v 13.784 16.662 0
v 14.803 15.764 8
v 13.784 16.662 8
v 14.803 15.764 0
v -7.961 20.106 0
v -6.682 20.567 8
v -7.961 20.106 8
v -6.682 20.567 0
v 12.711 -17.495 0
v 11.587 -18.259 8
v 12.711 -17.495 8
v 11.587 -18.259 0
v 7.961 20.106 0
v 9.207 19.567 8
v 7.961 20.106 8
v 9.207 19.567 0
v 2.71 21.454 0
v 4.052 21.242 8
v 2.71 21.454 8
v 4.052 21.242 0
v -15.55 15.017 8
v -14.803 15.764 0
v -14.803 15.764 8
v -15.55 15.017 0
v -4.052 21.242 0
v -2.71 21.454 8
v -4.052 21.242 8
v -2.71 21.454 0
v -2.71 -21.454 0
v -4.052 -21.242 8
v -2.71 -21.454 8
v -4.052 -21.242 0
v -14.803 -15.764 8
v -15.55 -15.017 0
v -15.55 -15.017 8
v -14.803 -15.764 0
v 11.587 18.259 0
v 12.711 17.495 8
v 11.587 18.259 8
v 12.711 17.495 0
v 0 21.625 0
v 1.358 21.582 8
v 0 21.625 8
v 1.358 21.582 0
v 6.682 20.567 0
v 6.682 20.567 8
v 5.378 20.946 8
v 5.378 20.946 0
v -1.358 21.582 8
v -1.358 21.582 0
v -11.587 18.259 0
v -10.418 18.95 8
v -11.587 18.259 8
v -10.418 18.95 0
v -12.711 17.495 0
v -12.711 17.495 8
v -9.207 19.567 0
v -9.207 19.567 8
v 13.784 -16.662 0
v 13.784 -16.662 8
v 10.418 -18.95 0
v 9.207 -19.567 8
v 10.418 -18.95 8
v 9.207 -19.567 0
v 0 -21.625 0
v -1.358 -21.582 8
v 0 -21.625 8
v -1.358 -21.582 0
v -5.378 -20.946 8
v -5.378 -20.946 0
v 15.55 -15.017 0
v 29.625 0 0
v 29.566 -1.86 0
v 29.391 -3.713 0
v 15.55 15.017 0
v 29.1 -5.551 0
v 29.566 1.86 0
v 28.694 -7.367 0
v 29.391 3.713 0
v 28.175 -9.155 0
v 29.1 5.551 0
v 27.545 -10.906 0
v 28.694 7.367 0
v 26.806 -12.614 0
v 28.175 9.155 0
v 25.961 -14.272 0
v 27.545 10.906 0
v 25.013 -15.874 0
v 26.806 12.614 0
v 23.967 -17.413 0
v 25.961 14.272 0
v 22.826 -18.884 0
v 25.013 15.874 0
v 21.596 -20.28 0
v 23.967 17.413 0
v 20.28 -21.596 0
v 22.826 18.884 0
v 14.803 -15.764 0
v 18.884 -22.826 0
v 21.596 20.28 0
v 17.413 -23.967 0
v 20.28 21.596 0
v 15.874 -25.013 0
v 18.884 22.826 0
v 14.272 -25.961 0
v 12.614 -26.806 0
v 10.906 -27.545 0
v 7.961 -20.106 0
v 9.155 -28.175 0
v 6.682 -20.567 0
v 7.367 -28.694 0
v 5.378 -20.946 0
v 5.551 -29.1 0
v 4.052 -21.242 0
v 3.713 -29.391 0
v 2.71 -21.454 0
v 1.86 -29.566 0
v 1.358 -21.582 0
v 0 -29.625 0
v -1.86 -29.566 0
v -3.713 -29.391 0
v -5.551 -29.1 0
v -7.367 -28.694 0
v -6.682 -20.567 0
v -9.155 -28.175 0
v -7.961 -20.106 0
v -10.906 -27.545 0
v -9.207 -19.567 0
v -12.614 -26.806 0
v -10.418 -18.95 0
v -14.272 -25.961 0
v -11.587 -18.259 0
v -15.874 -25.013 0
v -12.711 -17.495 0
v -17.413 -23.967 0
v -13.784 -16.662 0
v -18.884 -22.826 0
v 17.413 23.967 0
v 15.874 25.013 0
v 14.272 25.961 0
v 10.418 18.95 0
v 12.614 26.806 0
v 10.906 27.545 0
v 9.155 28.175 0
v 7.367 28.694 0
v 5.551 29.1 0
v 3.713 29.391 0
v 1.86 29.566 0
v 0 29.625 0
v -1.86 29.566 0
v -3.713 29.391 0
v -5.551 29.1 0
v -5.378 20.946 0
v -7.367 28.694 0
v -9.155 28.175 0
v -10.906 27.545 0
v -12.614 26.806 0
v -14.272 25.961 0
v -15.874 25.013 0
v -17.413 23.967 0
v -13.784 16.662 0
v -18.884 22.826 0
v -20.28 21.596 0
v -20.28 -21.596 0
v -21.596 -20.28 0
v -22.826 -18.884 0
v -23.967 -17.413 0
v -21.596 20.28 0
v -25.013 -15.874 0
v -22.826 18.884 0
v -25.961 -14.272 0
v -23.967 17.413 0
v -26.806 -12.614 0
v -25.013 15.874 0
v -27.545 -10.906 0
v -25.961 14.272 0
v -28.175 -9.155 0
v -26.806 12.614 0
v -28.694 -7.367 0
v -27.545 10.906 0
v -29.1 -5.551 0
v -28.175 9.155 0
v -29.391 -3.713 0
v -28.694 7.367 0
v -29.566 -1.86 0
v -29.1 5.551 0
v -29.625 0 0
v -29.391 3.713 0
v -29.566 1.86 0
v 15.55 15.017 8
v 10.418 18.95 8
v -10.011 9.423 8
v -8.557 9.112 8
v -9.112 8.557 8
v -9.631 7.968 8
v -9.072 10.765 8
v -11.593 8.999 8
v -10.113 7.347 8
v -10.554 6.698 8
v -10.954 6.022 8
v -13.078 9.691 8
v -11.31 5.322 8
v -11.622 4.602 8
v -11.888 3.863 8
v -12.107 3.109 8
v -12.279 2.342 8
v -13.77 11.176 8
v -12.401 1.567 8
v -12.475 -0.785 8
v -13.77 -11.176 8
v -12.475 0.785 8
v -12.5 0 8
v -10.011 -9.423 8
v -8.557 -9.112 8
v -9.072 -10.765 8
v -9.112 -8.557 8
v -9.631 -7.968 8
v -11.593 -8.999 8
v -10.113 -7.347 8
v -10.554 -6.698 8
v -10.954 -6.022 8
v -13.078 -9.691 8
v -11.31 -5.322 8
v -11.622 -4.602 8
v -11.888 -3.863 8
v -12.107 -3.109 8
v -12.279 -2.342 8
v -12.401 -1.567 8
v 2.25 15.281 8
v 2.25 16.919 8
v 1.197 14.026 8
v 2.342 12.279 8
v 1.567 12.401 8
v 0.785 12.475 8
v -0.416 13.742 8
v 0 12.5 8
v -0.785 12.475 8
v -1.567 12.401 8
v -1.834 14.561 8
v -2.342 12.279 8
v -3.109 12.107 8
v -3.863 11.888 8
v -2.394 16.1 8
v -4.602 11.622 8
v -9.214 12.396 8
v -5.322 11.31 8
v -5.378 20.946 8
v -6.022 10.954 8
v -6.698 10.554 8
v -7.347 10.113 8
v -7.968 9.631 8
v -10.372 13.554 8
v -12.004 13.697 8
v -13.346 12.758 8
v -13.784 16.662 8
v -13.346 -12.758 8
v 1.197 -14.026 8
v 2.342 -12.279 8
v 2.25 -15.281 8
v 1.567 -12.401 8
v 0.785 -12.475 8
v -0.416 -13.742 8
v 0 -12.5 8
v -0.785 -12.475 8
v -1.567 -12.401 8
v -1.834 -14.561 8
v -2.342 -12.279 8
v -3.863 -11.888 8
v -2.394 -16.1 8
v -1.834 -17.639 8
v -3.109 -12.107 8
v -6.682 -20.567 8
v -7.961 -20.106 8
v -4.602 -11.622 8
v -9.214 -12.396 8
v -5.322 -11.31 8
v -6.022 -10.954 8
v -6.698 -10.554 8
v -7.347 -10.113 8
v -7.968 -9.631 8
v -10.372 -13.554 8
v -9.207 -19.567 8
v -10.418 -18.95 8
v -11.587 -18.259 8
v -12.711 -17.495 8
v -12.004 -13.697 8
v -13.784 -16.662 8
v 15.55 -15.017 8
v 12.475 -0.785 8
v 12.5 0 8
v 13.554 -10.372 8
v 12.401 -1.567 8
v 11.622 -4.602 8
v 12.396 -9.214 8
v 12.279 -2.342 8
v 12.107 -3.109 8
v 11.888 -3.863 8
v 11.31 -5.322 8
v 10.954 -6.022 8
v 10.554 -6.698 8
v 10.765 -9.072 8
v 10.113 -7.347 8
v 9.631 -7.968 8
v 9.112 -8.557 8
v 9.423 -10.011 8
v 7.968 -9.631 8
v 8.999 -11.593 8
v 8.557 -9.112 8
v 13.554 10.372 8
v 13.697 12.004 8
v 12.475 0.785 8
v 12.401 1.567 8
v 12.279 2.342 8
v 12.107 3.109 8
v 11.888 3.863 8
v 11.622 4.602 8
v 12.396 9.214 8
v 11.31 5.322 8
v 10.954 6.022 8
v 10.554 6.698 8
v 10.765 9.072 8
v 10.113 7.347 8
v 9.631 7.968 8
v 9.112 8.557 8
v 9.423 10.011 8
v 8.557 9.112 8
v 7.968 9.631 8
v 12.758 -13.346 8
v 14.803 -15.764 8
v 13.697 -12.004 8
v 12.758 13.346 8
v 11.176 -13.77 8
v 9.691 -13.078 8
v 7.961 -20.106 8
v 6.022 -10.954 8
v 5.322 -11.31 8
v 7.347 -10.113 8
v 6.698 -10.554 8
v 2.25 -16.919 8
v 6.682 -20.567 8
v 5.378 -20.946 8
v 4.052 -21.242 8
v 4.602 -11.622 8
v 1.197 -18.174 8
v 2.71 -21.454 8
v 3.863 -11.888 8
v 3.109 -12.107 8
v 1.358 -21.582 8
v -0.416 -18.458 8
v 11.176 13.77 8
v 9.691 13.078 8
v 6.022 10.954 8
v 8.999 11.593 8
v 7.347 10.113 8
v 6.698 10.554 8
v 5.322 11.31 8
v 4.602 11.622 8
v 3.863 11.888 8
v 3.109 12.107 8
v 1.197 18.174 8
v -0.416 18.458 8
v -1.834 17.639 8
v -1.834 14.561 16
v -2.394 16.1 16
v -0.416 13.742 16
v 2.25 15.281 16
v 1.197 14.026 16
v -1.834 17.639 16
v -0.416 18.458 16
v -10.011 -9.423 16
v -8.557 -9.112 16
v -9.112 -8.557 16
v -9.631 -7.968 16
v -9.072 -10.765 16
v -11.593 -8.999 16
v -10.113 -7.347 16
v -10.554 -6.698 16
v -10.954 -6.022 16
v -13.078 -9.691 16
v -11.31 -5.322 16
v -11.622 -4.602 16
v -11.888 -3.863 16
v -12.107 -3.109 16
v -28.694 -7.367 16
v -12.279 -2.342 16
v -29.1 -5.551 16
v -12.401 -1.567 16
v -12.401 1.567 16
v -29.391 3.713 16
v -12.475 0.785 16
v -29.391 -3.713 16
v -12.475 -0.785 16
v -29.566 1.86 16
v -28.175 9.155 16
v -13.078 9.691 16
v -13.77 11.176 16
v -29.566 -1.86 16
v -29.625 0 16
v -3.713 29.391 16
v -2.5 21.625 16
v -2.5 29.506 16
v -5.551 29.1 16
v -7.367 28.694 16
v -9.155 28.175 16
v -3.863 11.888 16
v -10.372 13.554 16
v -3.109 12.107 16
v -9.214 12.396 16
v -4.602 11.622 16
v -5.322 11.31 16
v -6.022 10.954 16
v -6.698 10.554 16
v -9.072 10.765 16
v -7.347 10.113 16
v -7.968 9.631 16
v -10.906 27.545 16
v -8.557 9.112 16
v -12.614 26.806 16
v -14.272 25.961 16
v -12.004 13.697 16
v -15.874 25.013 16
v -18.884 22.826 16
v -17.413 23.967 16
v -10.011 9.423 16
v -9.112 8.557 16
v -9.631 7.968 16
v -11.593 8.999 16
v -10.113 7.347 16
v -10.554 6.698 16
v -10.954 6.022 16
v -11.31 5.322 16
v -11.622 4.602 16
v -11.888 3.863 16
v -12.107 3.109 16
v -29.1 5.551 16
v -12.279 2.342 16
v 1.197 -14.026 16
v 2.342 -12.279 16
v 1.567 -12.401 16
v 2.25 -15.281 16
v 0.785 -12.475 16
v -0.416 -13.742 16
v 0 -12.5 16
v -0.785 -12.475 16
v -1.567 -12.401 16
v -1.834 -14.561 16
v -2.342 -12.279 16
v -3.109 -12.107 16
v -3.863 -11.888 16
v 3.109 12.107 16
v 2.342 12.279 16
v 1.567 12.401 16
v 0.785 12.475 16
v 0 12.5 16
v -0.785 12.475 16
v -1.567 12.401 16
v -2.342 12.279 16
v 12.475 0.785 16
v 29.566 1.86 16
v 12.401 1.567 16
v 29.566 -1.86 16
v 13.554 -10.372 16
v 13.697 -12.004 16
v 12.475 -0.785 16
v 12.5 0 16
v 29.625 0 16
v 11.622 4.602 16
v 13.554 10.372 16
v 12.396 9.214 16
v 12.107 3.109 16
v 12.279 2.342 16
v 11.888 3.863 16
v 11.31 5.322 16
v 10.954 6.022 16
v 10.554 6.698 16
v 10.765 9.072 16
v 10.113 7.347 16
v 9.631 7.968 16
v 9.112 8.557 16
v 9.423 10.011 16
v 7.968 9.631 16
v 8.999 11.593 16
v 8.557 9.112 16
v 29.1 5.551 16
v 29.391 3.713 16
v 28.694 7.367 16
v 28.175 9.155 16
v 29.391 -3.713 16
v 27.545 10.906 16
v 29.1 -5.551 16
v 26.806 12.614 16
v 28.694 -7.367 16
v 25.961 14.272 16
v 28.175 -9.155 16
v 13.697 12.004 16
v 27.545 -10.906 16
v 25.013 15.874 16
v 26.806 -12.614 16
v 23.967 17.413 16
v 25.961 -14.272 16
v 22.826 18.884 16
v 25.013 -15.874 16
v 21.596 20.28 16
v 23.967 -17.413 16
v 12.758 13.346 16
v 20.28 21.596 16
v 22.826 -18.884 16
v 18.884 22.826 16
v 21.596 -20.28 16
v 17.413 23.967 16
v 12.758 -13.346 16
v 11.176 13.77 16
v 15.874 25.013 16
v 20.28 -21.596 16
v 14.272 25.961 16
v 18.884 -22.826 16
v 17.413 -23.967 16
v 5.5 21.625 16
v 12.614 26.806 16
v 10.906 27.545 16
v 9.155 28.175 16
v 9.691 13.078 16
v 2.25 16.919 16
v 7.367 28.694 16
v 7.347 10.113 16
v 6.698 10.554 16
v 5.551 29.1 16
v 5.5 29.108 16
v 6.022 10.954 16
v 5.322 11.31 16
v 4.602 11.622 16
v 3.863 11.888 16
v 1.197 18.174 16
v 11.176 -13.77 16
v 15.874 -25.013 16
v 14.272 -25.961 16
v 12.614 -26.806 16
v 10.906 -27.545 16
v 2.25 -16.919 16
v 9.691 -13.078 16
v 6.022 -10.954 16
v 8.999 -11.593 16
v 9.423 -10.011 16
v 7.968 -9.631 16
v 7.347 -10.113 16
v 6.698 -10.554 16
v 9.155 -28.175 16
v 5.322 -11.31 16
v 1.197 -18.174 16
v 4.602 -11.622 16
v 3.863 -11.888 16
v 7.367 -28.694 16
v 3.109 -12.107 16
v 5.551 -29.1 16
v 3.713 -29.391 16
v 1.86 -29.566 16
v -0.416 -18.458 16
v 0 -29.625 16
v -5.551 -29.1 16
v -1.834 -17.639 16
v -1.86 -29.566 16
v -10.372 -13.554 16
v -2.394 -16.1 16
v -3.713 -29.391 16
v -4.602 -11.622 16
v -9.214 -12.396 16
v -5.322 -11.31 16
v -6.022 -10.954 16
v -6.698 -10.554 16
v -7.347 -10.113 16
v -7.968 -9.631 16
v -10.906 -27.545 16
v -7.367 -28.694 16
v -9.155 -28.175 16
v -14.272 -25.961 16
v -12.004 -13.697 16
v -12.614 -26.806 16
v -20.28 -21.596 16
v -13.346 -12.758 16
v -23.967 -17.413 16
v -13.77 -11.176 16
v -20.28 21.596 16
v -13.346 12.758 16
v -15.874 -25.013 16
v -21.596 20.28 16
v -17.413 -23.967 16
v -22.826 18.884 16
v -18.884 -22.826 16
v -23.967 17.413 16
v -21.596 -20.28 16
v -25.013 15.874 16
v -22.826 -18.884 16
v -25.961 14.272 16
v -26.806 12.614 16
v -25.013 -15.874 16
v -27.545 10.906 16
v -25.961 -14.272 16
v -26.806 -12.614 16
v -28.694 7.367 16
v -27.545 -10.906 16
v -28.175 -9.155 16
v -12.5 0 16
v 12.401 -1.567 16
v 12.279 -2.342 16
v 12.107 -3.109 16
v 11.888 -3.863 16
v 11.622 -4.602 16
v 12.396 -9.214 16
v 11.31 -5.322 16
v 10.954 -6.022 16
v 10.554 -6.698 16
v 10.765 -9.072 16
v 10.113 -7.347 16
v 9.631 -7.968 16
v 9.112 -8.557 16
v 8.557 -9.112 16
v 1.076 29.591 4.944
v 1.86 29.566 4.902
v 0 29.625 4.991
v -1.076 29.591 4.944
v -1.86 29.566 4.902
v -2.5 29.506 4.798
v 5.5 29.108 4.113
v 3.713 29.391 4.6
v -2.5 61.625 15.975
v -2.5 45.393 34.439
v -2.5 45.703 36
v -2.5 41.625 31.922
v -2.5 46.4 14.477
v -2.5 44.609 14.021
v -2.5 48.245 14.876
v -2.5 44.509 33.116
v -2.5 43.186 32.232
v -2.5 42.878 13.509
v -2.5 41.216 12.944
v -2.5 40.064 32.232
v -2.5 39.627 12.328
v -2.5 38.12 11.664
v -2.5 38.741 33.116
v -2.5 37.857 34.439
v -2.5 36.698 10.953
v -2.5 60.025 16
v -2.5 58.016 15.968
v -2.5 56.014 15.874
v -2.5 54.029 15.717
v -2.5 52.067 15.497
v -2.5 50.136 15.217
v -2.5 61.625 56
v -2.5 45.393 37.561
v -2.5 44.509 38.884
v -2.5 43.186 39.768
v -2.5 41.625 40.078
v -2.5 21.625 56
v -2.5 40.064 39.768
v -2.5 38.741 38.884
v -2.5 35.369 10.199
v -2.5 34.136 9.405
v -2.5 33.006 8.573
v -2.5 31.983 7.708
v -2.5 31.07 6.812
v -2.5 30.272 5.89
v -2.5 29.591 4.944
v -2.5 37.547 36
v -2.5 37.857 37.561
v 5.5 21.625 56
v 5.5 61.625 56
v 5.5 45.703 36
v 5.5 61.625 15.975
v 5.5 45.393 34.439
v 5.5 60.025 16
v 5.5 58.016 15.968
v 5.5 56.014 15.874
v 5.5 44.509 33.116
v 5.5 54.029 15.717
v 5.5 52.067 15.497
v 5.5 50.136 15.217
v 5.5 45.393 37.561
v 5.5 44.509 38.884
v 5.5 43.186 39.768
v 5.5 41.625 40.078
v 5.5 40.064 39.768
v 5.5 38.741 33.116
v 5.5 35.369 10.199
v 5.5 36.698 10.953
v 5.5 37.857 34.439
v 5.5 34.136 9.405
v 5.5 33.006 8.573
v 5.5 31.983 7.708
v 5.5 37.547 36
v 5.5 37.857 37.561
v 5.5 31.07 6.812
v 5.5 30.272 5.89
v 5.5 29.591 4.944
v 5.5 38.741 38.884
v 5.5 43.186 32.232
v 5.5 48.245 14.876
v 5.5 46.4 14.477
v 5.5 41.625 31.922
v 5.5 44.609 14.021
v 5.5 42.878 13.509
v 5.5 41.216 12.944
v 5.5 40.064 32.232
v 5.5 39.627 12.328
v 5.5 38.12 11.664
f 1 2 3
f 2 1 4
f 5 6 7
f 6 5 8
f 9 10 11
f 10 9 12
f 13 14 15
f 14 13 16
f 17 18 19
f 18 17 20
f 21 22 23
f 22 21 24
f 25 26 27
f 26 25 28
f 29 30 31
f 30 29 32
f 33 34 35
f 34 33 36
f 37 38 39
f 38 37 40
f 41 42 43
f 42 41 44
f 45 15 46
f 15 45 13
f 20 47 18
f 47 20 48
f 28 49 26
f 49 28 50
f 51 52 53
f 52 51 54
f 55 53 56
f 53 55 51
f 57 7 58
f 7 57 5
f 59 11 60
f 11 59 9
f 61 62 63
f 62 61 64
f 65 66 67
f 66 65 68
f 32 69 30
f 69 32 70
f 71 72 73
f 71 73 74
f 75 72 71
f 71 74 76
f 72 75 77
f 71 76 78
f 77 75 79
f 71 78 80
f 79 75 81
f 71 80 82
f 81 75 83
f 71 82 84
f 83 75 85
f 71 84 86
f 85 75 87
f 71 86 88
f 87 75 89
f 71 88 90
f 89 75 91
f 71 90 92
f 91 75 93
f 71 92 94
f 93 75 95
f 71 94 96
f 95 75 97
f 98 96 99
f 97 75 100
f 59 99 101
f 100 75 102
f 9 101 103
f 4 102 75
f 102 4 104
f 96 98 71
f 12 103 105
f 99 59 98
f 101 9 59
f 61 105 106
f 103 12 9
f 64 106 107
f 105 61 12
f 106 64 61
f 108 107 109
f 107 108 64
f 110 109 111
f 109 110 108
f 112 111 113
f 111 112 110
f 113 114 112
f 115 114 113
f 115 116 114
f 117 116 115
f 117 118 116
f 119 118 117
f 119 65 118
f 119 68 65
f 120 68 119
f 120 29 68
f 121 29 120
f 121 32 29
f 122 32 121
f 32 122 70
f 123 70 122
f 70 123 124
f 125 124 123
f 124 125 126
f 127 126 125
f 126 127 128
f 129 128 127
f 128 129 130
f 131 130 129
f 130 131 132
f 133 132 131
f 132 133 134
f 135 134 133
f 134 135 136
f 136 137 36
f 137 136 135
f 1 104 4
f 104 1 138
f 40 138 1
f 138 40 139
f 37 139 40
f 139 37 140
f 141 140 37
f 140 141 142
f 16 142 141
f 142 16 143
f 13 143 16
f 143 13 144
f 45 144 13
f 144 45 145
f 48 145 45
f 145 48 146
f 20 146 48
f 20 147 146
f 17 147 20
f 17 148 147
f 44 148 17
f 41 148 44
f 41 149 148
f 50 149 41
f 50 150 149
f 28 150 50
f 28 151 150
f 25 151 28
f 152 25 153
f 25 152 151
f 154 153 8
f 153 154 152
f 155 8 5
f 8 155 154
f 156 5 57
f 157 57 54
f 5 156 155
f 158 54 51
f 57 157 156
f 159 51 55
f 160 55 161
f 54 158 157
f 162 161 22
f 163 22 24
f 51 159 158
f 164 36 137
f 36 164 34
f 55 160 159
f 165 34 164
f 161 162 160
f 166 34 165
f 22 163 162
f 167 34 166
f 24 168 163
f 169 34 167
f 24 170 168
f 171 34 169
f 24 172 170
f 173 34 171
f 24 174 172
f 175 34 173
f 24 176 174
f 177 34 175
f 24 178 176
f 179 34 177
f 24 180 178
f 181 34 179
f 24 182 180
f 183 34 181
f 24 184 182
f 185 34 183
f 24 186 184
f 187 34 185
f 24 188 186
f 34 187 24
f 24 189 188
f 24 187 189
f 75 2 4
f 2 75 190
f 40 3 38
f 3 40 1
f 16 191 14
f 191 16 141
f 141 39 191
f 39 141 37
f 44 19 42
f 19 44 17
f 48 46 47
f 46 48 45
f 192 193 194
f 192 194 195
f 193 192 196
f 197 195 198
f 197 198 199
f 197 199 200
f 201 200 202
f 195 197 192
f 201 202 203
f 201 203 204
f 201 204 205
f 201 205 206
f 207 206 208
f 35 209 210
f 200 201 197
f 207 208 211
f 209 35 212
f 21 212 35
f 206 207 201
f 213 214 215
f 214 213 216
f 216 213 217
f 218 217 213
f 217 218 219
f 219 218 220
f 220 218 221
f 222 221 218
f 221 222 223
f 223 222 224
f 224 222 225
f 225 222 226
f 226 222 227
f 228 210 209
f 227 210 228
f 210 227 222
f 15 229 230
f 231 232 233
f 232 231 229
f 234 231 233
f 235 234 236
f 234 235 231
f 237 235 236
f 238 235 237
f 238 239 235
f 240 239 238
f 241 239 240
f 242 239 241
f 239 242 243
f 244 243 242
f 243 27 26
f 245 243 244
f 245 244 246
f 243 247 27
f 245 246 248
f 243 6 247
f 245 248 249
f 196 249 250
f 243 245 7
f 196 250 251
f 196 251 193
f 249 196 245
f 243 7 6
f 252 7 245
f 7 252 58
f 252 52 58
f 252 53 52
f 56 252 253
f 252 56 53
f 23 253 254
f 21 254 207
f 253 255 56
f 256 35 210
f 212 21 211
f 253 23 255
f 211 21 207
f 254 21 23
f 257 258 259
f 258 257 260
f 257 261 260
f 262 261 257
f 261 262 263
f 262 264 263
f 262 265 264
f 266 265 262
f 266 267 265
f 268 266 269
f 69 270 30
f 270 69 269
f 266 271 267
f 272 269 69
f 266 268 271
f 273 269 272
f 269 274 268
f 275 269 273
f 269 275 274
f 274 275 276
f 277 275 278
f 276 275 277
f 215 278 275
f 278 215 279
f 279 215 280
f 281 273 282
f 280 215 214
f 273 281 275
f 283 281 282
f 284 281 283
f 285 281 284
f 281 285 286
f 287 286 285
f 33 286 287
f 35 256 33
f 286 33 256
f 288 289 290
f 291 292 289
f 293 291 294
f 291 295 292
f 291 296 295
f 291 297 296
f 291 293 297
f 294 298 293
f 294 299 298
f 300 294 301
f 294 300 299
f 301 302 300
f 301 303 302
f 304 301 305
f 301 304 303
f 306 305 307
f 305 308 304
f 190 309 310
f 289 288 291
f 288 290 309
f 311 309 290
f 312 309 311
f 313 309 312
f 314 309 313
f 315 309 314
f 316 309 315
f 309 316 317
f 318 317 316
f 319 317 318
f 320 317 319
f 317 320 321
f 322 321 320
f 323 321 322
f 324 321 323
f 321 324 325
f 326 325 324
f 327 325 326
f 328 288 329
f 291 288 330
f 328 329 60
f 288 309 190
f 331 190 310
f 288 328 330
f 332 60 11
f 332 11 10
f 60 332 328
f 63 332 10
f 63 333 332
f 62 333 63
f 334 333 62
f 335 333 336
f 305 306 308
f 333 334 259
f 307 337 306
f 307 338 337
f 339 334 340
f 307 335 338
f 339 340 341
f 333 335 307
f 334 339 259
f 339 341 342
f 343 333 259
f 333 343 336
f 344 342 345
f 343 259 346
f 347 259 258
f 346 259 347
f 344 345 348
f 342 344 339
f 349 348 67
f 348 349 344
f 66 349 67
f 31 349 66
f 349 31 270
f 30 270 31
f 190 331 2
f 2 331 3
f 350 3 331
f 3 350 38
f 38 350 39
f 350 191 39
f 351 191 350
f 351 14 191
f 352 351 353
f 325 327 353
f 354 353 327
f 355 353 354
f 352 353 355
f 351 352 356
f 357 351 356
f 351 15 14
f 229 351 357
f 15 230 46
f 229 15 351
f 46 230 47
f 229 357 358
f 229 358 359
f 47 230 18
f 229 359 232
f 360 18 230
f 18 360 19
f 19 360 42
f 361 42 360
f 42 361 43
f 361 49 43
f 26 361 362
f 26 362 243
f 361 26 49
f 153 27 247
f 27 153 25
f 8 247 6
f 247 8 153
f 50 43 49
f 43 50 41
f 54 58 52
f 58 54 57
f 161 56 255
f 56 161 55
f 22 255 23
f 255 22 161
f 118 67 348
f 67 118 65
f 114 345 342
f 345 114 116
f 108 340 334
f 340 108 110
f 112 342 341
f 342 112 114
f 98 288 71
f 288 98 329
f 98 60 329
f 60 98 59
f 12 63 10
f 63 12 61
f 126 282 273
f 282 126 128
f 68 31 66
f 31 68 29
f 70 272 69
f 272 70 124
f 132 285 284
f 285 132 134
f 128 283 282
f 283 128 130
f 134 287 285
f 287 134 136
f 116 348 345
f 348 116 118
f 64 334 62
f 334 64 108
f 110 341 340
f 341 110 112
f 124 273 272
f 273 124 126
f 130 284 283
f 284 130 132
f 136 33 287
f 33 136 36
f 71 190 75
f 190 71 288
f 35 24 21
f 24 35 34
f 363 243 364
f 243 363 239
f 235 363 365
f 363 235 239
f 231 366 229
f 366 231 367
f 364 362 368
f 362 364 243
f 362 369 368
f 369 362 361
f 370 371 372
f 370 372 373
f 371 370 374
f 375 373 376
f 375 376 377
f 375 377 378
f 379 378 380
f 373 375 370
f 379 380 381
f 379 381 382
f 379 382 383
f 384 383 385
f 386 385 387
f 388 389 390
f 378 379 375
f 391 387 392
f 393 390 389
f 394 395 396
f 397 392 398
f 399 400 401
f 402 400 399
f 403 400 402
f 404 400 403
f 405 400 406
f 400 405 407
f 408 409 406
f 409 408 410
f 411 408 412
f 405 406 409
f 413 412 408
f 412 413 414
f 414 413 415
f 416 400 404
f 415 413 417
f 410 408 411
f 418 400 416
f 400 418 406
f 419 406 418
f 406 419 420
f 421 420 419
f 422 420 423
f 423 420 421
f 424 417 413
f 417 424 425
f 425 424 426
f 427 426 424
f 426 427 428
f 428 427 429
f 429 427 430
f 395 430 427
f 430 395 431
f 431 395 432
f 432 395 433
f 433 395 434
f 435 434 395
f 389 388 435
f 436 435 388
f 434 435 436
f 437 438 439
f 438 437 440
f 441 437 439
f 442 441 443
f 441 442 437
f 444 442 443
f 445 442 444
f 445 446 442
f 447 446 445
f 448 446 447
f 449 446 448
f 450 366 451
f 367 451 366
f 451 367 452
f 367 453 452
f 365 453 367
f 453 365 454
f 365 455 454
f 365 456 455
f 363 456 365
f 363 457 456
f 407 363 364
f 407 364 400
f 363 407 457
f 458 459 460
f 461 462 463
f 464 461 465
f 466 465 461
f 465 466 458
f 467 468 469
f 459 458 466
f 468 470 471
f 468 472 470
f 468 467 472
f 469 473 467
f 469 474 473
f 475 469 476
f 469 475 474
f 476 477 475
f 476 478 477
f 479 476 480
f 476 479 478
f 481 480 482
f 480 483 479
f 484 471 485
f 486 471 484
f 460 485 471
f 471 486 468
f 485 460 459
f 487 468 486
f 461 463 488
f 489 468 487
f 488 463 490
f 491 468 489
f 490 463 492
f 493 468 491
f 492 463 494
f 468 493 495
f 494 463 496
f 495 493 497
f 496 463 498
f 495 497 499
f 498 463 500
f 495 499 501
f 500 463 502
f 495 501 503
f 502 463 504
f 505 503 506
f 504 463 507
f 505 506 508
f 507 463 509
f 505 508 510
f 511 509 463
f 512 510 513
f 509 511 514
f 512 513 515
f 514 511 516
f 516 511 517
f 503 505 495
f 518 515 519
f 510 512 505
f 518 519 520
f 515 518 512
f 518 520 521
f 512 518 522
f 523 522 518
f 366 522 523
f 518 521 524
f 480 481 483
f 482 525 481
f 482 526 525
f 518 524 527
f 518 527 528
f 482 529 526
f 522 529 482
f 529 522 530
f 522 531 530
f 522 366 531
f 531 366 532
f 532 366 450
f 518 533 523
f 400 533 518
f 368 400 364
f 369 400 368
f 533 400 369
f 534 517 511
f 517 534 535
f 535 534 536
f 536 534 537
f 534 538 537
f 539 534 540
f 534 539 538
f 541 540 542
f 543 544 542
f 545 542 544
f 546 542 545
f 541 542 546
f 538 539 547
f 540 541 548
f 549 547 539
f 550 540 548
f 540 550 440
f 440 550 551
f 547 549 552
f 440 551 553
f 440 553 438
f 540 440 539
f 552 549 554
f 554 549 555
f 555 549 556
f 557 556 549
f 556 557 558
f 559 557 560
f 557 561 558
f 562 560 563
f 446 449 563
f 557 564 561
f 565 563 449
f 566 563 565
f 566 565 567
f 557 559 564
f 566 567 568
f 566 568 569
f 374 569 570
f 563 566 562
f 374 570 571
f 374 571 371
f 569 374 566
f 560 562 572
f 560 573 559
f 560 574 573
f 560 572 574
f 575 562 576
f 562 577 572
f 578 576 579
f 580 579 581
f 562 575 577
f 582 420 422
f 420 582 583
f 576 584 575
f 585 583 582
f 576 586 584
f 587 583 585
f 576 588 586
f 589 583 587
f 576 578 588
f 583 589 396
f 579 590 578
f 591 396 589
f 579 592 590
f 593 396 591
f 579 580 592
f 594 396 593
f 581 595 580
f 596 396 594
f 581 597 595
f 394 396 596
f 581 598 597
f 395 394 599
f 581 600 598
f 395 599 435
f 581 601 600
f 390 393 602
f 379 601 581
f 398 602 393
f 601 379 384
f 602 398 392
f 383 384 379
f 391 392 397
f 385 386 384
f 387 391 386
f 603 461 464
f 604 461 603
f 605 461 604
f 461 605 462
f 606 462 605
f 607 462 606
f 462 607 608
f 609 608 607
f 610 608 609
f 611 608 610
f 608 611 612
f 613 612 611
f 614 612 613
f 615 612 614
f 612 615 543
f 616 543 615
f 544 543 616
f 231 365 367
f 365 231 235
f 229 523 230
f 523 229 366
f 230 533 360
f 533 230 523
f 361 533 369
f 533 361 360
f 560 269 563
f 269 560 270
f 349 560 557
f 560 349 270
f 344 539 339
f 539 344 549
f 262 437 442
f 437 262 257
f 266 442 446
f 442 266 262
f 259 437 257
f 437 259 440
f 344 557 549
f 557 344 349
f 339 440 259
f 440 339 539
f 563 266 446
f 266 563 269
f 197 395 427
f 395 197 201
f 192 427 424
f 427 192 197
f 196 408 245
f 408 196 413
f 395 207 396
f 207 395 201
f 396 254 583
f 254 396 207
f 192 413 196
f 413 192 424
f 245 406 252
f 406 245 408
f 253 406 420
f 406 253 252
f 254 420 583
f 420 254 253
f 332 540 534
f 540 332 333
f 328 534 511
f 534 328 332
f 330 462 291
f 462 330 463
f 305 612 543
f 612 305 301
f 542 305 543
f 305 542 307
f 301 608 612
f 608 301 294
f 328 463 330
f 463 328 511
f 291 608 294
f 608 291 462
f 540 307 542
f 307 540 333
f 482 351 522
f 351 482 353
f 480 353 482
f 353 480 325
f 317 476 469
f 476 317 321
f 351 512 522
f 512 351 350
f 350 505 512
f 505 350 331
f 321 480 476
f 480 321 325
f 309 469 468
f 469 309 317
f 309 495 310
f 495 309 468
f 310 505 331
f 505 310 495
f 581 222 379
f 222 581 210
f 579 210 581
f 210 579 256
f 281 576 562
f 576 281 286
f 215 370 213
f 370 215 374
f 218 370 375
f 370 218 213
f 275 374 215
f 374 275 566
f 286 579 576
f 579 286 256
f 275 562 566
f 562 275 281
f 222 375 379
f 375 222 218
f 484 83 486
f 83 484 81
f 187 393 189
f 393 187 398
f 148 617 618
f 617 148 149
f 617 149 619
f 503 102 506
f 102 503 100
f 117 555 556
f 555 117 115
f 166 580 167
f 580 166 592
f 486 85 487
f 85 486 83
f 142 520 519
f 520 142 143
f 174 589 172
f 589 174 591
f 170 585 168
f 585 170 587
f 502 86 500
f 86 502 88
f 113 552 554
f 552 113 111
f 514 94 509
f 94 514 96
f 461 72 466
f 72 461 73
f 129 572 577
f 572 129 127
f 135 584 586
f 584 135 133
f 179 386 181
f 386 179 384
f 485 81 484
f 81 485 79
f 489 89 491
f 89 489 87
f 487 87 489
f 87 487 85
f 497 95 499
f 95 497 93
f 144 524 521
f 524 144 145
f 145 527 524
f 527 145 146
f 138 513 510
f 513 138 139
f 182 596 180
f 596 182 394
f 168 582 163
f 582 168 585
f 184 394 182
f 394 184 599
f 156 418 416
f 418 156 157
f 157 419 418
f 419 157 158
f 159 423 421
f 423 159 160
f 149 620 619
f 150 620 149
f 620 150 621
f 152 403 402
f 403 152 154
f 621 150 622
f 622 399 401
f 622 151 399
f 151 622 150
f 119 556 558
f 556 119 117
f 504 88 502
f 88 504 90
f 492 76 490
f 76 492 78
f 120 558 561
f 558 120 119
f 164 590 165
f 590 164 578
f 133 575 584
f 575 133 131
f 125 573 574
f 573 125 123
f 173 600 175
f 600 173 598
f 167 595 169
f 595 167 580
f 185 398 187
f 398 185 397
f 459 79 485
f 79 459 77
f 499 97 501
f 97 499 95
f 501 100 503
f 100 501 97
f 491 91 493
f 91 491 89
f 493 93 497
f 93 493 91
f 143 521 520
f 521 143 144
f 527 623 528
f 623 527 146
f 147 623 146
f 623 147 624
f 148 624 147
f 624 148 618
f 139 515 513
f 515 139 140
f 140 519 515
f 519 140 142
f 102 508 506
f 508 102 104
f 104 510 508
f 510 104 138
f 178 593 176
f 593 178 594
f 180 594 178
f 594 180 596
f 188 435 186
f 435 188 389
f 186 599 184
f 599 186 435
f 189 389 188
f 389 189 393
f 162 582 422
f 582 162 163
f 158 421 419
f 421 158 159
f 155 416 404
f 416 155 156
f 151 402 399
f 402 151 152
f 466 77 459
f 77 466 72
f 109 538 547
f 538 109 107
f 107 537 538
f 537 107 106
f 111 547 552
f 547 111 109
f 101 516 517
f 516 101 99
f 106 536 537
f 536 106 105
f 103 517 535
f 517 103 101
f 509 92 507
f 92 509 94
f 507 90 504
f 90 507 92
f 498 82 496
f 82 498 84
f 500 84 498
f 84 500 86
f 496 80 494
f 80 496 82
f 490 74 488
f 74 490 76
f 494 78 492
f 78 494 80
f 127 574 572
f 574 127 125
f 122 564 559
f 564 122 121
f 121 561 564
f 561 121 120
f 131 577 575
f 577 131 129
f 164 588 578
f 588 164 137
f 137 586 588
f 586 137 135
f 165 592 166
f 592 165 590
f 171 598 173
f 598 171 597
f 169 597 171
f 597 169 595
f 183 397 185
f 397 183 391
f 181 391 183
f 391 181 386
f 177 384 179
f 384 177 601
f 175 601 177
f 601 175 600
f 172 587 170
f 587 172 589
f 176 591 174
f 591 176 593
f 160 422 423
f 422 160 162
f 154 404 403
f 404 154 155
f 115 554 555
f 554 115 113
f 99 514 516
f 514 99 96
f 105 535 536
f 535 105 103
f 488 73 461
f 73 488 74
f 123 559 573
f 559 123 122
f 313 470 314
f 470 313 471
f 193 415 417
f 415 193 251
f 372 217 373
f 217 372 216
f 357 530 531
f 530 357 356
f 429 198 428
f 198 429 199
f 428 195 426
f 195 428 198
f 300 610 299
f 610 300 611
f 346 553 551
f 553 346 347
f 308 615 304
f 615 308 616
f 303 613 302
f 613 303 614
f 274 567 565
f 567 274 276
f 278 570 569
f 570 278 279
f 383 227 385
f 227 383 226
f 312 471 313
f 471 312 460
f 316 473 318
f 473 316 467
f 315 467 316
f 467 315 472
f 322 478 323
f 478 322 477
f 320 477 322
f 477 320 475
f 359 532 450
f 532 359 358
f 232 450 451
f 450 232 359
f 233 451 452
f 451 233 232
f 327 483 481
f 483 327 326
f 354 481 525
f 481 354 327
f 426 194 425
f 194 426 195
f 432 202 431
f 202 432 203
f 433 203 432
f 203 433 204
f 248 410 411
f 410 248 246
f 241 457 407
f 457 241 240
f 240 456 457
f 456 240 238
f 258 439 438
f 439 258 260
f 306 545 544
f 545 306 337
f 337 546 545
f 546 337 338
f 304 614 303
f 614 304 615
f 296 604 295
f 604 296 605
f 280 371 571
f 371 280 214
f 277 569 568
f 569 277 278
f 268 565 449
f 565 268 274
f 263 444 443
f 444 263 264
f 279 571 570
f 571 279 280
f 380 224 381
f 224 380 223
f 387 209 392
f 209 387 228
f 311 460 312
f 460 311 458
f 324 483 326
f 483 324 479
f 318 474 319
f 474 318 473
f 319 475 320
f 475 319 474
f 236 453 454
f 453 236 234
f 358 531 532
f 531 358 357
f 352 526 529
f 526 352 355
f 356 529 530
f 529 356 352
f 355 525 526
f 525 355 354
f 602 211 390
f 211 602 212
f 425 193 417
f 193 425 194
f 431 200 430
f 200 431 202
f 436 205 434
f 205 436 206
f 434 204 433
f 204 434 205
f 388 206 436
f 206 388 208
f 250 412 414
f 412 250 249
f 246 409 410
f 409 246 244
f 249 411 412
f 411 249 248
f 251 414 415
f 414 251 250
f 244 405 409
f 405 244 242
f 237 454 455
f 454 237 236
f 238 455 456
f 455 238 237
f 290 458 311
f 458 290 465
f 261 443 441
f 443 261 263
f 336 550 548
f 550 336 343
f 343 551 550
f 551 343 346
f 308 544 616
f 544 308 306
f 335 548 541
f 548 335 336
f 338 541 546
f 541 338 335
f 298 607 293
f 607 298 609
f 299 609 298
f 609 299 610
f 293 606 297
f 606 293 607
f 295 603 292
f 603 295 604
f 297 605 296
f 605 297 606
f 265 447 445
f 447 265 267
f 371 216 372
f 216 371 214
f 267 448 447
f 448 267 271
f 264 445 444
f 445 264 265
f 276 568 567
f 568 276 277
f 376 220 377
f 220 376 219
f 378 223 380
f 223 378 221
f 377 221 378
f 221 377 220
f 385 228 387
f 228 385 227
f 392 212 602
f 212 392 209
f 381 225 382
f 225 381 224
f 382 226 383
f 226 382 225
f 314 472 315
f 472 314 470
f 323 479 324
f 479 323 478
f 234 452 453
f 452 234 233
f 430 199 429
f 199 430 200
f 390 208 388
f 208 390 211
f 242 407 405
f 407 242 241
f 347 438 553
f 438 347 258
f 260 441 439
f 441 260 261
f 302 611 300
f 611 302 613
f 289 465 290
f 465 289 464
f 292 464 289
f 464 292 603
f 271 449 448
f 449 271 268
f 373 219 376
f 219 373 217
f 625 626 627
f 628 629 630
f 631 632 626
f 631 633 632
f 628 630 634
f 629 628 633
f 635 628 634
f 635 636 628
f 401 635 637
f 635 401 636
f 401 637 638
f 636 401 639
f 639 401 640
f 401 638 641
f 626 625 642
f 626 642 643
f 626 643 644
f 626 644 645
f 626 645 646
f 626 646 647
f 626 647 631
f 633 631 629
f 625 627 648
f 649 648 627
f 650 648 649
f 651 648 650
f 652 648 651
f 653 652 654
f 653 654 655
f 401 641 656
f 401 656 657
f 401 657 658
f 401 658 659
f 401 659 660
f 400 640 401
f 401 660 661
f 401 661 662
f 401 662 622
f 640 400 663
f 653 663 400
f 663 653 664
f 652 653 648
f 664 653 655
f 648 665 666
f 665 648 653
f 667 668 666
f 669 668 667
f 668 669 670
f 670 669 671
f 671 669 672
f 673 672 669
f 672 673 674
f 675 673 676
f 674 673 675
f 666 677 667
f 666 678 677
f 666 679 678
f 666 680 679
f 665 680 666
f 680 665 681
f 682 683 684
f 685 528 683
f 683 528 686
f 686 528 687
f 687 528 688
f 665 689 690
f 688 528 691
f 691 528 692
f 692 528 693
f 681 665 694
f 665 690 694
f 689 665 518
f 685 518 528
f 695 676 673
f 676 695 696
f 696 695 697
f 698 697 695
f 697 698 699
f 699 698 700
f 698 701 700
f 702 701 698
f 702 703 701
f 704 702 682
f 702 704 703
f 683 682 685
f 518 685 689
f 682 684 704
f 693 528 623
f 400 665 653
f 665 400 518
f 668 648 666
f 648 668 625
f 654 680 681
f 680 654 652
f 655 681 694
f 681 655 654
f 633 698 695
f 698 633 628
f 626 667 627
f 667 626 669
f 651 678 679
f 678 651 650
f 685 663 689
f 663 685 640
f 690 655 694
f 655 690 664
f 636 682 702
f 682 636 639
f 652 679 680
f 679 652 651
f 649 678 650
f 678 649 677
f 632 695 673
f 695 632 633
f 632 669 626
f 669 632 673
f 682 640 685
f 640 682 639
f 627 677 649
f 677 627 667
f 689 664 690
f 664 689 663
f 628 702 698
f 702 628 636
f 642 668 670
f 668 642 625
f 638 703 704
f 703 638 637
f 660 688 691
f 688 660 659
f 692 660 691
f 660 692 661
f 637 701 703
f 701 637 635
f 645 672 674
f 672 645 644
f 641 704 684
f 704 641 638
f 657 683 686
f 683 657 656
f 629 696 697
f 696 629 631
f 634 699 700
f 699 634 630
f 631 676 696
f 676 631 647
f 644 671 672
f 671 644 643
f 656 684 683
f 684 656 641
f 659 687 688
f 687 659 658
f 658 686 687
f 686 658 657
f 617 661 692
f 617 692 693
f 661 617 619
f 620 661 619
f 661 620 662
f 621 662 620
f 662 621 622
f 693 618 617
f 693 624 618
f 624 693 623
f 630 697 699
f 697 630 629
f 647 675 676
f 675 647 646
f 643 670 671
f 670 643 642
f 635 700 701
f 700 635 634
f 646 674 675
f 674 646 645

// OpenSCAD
use <MCAD/polyholes.scad>;



$fn = 100;

thick = 8;

extrusion_w = 40.0; //mm
extrusion_h = 40.0; //mm
extrusion_bolt_d = 8.0; //mm
extrusion_mount_h = 40.0; //mm

frame_mount_bolt_r  =  2.575;  //mm
frame_mount_pitch   = 25.4;    //mm

nut_o_d      =        42.25;    //mm
nut_i_d      =         24.0;    //mm
nut_h        =         35.5;    //mm
nut_collar_h =          8.5;    //mm
nut_o_tol    =          1.0;    //mm
nut_chamfer =         30.1;    //mm

nut_mount_hole_d =  4.5;    //mm
nut_mount_pitch   = 32.2;    //mm

// this is from the lower ballscrew mount.  TODO:  refactor

bearing_o_d   =         22.0;    //mm
bearing_i_d   =          8.0;    //mm
bearing_h     =          7.0;    //mm
bearing_o_tol =          1.0;    //mm

bearing_mount_r = ((bearing_o_d + bearing_o_tol) / 2.0) + thick;


union () {
    %translate ([0, 0, thick]) difference () {
        cylinder(r = thick + (nut_i_d / 2.0) + (nut_o_tol / 2.0), h = nut_h - nut_collar_h);
        
    }
    difference () {
        cylinder(r = (nut_o_d + nut_o_tol) / 2.0 + thick, h = thick * 2.0);
        cylinder(r = (nut_i_d / 2.0) + (nut_o_tol / 2.0), h = nut_h - nut_collar_h);
        difference() {
            cylinder(r = (nut_o_d + nut_o_tol) / 2.0, h = thick);
            translate([(nut_o_d + nut_o_tol) / 2.0, 0, thick / 2.0]) cube([nut_o_d - nut_chamfer, nut_chamfer, thick], center = true);
            translate([-(nut_o_d + nut_o_tol) / 2.0, 0, thick / 2.0]) cube([nut_o_d - nut_chamfer, nut_chamfer, thick], center = true);
        }
        mount_hole_pair();
        rotate([0, 0, 45.0]) mount_hole_pair();
        rotate([0, 0, -45.0]) mount_hole_pair();
    }
    // extrusion mount
    difference() {
        translate([-thick + (25 - bearing_mount_r), (nut_o_d + nut_o_tol) / 2.0, 0])
        difference () {
               
            cube([thick, extrusion_w, extrusion_mount_h + thick * 2.0]);
               
            translate([-1.0, extrusion_w / 2.0, extrusion_mount_h / 2.0 + thick * 2.0]) rotate([0, 90, 0]) polyhole(h = thick + 2.0, d = extrusion_bolt_d);
            resize([thick + 2.0, (extrusion_w - thick) * 2.0, thick * 4.0]) translate ([thick / 2.0 + 1.0, extrusion_w + thick, 0]) rotate([0, 90, 0]) cylinder(r= extrusion_w, h = thick + 2.0, center = true);
        }
    } 
}

module mount_hole_pair() {
    translate([0, nut_mount_pitch / 2.0, thick]) polyhole(d = nut_mount_hole_d, h = thick);
    translate([0, -nut_mount_pitch / 2.0, thick]) polyhole(d = nut_mount_hole_d, h = thick);
}
